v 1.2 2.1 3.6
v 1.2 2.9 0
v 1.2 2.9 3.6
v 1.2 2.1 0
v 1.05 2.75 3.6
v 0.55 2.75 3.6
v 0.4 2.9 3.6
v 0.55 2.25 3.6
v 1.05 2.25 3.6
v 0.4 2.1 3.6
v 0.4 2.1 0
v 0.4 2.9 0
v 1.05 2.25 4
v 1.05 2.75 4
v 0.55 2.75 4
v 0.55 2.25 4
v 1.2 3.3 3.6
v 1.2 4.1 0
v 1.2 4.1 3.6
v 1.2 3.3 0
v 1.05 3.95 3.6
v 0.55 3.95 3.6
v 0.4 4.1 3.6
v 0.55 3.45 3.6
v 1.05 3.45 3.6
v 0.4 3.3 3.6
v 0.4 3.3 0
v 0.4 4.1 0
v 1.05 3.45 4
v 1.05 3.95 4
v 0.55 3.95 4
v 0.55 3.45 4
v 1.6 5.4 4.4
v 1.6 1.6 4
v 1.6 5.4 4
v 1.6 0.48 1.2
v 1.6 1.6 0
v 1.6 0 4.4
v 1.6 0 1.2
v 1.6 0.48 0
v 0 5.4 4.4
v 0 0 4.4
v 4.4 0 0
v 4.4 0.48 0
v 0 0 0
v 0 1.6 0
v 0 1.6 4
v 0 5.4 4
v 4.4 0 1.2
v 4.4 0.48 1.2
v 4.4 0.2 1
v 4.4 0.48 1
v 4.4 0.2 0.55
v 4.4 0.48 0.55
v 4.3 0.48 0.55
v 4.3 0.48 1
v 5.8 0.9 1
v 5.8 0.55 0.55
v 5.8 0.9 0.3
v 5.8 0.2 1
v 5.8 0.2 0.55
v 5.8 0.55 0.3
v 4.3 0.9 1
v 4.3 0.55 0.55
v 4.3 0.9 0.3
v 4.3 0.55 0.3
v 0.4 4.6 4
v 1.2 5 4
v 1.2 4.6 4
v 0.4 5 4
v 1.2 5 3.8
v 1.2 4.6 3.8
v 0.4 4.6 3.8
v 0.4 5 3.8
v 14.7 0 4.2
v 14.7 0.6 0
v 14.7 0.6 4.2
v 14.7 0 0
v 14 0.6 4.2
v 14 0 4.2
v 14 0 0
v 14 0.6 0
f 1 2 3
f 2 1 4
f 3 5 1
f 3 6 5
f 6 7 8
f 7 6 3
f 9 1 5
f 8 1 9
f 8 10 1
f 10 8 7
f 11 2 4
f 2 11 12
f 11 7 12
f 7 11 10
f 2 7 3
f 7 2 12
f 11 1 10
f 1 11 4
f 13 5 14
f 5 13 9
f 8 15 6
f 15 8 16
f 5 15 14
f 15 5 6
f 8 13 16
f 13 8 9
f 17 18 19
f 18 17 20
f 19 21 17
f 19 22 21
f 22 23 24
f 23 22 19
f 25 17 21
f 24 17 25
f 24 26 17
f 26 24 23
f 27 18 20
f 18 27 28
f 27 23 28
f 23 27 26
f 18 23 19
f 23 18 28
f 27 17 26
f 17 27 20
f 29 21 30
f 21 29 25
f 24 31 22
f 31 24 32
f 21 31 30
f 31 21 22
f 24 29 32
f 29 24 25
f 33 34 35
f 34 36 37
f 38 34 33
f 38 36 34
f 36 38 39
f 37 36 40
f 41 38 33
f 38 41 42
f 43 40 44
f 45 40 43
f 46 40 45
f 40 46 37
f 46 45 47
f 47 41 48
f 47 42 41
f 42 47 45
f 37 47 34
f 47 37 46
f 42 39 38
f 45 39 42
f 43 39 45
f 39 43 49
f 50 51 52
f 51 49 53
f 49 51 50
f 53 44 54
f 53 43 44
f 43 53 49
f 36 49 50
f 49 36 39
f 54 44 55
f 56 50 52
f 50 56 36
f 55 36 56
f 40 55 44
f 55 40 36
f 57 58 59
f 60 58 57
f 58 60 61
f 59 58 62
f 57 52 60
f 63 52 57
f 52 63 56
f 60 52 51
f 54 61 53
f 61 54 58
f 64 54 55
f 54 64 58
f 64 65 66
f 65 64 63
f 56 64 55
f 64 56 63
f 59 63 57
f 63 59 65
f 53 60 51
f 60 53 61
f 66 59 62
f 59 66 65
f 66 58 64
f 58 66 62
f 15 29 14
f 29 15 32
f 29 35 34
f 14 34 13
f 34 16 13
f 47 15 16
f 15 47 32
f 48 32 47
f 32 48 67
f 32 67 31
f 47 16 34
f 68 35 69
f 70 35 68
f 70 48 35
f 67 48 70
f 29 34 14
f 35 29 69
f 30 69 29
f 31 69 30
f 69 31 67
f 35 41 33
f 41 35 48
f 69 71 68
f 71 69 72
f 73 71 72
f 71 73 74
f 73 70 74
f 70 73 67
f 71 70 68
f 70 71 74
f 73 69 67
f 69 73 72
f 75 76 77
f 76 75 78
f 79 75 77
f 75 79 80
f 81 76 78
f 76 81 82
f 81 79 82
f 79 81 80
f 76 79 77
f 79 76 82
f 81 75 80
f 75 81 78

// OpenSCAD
// Slice prototype of retainer concept A. Not part of the case.
// One clip, tooth on the bed. Layers stack in +z.
// The arm is 0.48 mm in y, so its snap bends in the layer plane.
// The tooth is only on the free end. Pillars are 0.80 mm square.
// A 0.70 x 0.60 tower sits beside it as the control PrusaSlicer drops.
$fn = 24;

module neck_pillar(x, y) {
  translate([x, y, 0]) cube([0.80, 0.80, 3.60]);
  translate([x + 0.15, y + 0.15, 3.60]) cube([0.50, 0.50, 0.55]);
}

module clip() {
  union() {
    // Anchor post. 1.60 mm in y, not the 0.50 mm column.
    cube([1.60, 1.60, 4.40]);
    // Cantilever arm. No tooth on this stretch.
    translate([1.50, 0, 0]) cube([2.90, 0.48, 1.20]);
    // Tooth on the free end only. Top face is the square retention face.
    // The bottom-inner corner is cut back: that is the install lead-in.
    translate([4.30, 0.20, 0.55]) cube([1.50, 0.70, 0.45]);
    translate([4.30, 0.55, 0.30]) cube([1.50, 0.35, 0.25]);
    // Tongue plate, 0.40 mm thick.
    translate([0, 1.40, 4.00]) cube([1.60, 4.00, 0.40]);
    // Bump, 0.40 mm in y, 0.20 mm below the plate. No pillar under it.
    translate([0.40, 4.60, 3.80]) cube([0.80, 0.40, 0.20]);
    // 0.80 mm pillars under the plate, clear of the bump.
    neck_pillar(0.40, 2.10);
    neck_pillar(0.40, 3.30);
  }
}

clip();
// Control. 0.70 x 0.60. PrusaSlicer 2.9.2 reported this as an empty print.
translate([14, 0, 0]) cube([0.70, 0.60, 4.20]);
